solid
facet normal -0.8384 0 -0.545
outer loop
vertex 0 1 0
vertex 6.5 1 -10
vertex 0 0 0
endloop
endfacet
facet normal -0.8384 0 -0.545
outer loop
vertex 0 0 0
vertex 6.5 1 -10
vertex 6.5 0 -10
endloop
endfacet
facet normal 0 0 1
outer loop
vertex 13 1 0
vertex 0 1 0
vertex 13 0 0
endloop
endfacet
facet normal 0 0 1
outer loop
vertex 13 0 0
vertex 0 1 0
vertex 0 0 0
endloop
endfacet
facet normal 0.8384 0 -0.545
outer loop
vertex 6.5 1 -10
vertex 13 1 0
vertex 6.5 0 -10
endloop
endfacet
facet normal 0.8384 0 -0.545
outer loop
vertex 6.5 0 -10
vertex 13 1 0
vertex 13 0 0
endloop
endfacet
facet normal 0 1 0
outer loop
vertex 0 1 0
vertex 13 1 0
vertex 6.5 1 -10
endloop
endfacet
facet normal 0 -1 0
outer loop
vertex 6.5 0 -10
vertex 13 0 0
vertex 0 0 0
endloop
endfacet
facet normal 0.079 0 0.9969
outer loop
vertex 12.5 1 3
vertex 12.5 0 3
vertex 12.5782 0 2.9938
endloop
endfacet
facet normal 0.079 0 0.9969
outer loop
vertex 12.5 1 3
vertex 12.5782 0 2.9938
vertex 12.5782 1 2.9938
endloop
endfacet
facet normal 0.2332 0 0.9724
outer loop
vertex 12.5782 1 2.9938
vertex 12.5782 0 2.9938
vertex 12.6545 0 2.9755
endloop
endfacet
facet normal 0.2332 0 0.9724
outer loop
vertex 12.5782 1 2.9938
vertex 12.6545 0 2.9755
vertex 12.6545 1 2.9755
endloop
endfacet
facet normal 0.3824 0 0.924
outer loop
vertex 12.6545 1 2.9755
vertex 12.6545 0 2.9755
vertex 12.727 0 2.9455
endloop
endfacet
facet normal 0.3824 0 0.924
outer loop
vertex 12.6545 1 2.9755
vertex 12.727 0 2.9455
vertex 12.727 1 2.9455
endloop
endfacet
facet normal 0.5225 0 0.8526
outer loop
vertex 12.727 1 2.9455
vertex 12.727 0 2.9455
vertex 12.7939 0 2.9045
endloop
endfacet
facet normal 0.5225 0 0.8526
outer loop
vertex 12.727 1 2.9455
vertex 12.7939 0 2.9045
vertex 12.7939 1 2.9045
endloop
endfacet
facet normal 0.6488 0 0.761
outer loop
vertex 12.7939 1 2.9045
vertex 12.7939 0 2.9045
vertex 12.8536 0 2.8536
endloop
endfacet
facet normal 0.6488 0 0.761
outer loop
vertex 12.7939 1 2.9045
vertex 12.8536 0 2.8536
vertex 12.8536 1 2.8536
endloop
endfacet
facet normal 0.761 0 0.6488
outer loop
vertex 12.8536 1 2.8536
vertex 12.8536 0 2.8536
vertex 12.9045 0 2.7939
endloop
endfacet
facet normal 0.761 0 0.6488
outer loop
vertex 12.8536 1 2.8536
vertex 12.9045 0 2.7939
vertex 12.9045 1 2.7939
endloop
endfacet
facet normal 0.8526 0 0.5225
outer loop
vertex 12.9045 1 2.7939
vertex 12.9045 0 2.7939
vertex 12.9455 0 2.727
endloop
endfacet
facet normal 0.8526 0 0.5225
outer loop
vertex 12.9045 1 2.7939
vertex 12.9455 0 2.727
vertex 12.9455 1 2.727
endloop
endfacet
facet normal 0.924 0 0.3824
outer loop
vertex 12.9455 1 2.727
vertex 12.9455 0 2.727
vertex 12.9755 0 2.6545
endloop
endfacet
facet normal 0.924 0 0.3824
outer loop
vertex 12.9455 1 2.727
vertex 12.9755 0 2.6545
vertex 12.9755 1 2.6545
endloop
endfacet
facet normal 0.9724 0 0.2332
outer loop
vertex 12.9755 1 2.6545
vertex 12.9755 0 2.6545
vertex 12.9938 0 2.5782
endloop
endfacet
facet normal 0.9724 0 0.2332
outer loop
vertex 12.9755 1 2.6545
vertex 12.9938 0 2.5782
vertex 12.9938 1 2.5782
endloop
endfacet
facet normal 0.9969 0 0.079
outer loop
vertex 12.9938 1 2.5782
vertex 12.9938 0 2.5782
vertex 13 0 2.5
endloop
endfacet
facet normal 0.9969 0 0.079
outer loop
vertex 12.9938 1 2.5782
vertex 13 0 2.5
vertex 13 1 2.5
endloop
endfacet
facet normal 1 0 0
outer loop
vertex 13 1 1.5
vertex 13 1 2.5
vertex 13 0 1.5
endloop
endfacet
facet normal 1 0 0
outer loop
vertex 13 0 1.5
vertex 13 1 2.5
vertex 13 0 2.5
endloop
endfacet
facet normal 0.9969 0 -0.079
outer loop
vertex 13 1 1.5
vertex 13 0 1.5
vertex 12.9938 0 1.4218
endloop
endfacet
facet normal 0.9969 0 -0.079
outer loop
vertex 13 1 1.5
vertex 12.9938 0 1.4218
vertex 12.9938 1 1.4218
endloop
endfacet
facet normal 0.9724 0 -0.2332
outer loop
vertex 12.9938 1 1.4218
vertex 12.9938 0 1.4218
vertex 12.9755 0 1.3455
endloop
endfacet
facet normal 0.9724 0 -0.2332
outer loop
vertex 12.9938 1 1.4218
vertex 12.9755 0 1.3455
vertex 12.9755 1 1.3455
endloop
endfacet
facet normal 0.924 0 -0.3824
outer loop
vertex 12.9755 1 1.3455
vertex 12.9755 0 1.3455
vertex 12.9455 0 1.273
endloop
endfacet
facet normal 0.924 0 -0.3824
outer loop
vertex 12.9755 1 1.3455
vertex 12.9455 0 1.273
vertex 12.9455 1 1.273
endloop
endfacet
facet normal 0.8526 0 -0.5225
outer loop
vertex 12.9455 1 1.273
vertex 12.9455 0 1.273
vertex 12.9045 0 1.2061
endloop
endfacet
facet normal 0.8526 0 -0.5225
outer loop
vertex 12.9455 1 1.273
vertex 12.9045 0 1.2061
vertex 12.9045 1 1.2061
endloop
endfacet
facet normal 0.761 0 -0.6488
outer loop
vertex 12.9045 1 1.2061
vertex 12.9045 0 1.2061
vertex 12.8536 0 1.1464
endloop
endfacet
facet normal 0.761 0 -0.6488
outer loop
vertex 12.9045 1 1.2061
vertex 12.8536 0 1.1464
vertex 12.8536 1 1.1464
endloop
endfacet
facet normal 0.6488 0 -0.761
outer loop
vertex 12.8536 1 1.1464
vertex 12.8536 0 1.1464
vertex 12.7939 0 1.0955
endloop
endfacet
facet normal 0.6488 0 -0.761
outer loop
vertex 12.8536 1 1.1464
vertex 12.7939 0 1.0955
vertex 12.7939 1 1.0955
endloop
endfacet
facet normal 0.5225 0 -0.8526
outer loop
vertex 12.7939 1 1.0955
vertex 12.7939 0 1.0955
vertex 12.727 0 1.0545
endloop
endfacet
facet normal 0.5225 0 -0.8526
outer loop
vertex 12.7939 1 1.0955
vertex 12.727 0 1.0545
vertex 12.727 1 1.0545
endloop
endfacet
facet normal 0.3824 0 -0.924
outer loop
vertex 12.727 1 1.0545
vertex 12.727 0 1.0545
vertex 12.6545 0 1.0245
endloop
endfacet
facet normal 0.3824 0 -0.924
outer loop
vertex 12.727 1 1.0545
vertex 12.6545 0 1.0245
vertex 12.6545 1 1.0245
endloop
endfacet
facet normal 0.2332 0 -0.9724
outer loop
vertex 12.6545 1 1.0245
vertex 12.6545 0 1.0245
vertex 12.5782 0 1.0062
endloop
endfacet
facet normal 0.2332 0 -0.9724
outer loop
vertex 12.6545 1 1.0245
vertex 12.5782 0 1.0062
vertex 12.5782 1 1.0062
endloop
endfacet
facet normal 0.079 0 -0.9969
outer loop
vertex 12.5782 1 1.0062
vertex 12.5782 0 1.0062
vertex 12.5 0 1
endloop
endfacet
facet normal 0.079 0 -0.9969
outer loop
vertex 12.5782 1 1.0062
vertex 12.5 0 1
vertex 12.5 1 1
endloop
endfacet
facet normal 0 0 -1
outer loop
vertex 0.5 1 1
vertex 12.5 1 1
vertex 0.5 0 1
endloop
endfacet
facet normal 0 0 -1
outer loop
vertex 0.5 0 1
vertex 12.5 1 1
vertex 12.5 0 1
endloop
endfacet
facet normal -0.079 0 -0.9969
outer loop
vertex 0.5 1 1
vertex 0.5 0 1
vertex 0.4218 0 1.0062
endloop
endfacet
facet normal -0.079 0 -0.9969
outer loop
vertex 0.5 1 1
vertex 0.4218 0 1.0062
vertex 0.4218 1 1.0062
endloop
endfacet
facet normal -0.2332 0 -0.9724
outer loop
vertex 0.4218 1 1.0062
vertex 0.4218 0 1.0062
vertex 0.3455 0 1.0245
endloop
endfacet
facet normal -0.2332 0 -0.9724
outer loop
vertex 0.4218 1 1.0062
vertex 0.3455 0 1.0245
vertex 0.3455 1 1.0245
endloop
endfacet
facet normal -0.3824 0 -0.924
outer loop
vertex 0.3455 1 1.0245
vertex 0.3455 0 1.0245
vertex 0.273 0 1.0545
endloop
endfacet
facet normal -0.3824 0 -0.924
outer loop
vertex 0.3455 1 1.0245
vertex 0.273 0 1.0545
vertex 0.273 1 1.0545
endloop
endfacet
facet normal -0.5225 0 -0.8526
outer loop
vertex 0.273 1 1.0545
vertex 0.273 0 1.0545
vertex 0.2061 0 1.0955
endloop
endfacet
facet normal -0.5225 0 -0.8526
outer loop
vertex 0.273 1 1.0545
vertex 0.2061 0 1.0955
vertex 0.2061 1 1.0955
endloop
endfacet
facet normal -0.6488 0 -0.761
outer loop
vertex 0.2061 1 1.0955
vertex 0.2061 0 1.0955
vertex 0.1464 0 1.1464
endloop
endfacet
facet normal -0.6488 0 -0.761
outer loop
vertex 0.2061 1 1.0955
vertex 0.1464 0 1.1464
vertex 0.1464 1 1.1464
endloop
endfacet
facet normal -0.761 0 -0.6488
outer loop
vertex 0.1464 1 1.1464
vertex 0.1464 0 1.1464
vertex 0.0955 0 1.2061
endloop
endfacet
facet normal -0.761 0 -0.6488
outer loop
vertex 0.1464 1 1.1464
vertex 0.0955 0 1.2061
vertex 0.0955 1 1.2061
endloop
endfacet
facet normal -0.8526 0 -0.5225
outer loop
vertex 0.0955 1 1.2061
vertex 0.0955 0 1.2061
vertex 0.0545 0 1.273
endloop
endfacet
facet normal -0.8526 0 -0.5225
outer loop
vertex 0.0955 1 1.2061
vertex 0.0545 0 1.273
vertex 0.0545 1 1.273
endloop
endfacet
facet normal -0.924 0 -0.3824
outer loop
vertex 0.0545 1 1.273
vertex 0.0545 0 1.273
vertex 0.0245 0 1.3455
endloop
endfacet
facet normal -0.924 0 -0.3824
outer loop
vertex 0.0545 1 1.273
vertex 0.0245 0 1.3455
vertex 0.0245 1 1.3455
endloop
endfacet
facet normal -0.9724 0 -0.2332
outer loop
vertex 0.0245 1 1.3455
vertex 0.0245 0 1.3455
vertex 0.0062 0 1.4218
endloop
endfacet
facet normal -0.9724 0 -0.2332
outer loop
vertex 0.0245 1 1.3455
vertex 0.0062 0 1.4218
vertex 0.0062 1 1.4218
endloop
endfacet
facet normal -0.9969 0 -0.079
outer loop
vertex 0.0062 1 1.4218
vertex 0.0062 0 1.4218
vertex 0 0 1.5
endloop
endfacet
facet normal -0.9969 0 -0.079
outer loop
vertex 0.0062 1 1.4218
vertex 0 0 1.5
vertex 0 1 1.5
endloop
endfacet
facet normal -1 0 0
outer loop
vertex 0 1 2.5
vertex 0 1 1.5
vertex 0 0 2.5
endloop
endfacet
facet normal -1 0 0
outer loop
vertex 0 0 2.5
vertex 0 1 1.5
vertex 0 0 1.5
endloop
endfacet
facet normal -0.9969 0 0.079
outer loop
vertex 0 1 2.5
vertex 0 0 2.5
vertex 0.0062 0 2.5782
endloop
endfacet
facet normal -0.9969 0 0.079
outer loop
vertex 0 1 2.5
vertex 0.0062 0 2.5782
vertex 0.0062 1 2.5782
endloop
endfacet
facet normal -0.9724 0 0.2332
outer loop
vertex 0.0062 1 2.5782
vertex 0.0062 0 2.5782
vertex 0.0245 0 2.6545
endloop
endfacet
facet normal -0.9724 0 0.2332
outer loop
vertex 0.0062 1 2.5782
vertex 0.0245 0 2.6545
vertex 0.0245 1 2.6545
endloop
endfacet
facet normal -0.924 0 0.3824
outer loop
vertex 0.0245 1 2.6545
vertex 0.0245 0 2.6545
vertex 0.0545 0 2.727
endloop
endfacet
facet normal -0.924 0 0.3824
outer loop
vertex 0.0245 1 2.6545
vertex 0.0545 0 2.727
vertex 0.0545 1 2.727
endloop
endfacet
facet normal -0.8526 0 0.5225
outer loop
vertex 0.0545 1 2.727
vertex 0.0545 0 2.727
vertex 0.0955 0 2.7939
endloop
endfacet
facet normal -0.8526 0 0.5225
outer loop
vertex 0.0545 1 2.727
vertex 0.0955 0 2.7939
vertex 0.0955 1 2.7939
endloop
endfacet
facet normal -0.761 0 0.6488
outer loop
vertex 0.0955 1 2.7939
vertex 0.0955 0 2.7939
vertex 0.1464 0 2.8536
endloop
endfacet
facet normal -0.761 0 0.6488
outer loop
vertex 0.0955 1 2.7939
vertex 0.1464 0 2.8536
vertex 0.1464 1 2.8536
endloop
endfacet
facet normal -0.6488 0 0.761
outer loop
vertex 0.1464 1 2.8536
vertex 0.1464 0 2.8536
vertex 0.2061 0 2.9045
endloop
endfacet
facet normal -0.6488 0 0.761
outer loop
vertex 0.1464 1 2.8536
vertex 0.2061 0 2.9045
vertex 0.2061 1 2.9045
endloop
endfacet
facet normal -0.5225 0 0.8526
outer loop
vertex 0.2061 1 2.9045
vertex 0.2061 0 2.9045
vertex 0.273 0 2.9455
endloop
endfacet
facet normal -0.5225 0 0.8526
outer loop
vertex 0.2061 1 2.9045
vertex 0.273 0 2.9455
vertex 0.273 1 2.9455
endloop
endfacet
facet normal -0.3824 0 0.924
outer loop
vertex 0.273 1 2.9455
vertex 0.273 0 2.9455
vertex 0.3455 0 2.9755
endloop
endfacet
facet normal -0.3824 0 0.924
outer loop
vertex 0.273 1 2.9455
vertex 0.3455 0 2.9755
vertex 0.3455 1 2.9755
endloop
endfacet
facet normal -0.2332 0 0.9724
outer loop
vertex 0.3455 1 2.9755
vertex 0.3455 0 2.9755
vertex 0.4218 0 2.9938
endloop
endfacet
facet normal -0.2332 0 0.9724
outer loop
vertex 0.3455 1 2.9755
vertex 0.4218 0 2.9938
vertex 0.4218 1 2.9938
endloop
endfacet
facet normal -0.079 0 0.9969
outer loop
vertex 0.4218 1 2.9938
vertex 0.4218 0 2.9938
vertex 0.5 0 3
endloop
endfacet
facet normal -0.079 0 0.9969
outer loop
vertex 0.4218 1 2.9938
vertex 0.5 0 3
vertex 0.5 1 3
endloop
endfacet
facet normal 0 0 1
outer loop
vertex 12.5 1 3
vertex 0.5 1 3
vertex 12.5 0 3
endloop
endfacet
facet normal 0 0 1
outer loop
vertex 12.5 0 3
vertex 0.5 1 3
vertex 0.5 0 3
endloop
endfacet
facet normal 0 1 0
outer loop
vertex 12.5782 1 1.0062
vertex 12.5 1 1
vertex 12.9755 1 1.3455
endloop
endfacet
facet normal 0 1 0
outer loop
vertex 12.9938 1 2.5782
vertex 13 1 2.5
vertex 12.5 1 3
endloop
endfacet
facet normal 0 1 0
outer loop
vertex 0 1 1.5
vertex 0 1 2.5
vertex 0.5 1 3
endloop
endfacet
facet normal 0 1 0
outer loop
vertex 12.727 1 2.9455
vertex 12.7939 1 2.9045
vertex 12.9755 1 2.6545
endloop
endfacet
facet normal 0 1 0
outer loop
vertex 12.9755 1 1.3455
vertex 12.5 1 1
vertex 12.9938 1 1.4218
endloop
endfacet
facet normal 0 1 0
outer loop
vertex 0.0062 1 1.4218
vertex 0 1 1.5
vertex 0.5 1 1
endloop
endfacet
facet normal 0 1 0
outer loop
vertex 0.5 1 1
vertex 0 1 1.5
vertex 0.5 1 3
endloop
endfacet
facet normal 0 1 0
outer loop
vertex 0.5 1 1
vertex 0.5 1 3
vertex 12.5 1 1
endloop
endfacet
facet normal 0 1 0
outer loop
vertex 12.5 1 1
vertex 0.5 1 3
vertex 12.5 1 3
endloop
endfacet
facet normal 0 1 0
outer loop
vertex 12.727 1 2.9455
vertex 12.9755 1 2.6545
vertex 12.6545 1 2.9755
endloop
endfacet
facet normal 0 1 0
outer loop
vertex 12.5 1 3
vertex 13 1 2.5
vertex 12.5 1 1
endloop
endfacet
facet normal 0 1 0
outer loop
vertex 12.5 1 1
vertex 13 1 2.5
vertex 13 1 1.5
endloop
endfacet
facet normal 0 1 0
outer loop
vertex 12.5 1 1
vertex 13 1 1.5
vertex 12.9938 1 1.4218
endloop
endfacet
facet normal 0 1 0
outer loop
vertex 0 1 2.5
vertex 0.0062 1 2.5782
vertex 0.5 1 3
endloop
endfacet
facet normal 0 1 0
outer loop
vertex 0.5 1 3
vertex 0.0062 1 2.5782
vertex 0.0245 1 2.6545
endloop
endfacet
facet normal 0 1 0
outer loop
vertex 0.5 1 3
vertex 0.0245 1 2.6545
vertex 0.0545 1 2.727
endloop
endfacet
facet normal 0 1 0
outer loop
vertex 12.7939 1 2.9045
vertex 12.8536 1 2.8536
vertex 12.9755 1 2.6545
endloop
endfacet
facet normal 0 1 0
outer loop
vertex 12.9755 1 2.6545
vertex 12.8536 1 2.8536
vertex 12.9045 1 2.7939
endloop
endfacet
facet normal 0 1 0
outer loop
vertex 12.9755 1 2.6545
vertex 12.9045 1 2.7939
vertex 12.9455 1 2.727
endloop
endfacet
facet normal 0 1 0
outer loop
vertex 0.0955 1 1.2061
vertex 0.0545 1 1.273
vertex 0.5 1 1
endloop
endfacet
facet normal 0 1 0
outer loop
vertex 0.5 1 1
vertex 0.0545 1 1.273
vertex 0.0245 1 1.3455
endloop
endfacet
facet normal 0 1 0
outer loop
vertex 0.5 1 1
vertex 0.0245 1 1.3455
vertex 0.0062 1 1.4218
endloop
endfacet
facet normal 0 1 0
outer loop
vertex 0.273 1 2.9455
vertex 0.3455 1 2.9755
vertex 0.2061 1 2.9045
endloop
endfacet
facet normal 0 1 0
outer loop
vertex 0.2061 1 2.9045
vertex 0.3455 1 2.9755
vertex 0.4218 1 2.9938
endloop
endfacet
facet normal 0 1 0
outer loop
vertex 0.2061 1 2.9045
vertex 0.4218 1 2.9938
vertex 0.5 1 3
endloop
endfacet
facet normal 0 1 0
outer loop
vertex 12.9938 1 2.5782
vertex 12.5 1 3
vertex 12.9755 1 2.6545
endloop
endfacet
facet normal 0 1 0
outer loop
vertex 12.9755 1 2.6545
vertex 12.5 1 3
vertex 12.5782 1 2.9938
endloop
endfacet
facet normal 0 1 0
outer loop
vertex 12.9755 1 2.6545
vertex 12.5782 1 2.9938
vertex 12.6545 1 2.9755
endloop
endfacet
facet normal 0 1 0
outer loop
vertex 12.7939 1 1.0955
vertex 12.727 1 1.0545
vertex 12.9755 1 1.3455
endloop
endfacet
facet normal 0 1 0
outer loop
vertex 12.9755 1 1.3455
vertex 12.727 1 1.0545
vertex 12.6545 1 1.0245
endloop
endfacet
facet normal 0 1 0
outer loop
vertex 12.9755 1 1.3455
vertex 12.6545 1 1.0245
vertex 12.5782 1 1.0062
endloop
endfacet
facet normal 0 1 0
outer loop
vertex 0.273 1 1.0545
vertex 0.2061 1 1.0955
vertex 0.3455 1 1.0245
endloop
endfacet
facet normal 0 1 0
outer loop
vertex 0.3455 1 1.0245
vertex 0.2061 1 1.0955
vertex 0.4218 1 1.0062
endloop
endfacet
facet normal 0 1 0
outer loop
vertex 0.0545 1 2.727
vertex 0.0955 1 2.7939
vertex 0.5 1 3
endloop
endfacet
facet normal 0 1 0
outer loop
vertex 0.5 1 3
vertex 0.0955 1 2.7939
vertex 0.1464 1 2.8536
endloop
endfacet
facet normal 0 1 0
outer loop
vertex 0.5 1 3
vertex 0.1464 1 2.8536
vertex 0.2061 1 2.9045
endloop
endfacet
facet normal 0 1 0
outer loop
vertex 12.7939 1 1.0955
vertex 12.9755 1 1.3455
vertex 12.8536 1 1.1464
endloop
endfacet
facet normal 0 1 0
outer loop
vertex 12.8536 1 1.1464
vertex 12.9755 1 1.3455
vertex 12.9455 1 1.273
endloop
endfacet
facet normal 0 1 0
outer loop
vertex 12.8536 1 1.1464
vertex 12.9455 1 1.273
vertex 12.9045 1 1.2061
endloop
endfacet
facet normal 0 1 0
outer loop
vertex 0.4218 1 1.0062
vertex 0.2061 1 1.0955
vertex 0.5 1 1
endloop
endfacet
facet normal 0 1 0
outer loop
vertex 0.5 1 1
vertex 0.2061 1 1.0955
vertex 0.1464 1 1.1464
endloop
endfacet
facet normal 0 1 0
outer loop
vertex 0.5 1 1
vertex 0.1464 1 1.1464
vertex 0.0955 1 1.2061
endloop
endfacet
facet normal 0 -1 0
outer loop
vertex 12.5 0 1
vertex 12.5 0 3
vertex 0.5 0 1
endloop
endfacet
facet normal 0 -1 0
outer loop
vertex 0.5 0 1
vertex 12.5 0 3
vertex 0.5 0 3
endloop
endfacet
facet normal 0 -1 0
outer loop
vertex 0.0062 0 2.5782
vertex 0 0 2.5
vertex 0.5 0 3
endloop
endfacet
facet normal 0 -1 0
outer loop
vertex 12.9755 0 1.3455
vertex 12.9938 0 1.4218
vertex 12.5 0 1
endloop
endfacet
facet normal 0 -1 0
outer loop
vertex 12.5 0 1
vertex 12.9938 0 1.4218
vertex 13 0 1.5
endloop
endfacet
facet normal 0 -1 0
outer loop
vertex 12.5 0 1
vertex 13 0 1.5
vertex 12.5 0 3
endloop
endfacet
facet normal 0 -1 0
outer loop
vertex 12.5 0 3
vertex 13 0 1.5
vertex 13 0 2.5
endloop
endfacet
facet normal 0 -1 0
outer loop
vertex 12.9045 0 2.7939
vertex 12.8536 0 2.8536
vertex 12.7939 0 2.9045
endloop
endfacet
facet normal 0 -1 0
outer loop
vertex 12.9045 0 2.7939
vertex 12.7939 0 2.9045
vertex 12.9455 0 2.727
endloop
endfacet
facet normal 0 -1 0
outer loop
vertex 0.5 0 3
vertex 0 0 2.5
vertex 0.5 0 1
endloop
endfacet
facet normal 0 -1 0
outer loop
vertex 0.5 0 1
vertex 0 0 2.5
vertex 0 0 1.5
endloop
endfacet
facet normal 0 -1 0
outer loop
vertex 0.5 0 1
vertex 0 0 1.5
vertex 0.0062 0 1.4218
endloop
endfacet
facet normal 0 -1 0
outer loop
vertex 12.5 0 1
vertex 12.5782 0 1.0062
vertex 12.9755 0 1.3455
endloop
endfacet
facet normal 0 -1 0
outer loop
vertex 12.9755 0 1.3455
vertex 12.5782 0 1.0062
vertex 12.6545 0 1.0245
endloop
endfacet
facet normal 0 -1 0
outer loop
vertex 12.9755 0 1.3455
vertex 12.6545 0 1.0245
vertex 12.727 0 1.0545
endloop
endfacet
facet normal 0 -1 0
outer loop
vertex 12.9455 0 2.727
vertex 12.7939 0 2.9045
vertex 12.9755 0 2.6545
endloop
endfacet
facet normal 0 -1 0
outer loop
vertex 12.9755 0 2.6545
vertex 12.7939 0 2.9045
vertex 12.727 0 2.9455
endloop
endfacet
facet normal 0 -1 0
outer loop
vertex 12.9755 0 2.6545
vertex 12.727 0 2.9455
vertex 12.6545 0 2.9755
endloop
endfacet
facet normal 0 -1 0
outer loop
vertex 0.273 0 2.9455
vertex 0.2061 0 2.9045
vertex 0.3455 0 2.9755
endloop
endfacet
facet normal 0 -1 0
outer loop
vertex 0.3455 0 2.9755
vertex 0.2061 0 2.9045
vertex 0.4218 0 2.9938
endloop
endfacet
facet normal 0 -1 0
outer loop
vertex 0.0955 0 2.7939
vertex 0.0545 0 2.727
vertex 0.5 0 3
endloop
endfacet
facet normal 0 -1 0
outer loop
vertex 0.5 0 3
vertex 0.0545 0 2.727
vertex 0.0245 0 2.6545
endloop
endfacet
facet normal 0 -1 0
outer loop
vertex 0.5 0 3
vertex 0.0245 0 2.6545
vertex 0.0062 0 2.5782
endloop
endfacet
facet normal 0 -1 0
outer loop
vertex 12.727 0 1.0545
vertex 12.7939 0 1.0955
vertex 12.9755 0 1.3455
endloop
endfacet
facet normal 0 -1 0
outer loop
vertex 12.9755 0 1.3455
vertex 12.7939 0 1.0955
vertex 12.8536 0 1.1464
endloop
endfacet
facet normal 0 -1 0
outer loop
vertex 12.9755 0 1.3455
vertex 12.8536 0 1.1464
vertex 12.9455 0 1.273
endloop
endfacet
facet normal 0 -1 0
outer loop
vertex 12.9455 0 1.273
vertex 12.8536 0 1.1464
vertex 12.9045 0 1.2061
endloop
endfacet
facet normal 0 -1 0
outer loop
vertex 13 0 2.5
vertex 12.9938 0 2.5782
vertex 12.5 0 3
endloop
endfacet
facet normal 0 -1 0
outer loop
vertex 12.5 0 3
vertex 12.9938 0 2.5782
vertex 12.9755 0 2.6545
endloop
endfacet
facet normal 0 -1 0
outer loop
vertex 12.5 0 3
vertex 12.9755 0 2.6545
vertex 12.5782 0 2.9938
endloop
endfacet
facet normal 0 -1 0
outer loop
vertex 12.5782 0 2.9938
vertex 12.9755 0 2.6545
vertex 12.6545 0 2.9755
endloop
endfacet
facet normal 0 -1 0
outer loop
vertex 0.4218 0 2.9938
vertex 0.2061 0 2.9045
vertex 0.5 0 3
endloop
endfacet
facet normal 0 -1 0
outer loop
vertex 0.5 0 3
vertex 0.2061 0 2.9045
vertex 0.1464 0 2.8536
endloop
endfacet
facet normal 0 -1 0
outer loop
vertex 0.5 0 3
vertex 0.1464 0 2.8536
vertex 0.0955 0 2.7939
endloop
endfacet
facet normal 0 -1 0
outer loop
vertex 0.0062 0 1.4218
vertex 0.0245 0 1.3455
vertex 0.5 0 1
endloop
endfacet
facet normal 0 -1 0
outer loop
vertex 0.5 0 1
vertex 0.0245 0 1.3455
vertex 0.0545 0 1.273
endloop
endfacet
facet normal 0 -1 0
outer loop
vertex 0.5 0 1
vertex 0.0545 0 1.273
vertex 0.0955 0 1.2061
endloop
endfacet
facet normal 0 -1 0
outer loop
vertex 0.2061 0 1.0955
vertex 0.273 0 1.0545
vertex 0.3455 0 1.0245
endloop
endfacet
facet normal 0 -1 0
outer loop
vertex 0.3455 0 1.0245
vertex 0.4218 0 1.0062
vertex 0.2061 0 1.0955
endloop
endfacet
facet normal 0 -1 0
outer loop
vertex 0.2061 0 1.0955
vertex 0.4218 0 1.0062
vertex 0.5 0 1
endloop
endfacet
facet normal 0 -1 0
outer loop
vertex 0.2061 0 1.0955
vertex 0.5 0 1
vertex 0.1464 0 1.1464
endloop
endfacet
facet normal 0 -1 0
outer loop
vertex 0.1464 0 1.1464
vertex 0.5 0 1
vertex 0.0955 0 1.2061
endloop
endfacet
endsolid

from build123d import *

# Parameters (mm, degrees)
BOSS_EXTRUDE1_DEPTH   = 1
BOSS_EXTRUDE1_2_DEPTH = 1


with BuildPart() as part:
    # Sketch2 → Boss-Extrude1 (new body)
    with BuildSketch(Plane(origin=(0, 0, 0), x_dir=(1, 0, 0), z_dir=(0, 1, 0))):
        Polygon((0, 0), (13, 0), (6.5, 10), align=None)
    extrude(amount=BOSS_EXTRUDE1_DEPTH)


with BuildPart() as body_2:
    # Sketch2 → Boss-Extrude1 2 (new body)
    with BuildSketch(Plane(origin=(0, 0, 0), x_dir=(1, 0, 0), z_dir=(0, 1, 0))):
        with BuildLine():
            Line((0.5, -1), (12.5, -1))
            ThreePointArc((12.5, -1), (12.853553391, -1.146446609), (13, -1.5))
            Line((13, -1.5), (13, -2.5))
            ThreePointArc((13, -2.5), (12.853553391, -2.853553391), (12.5, -3))
            Line((12.5, -3), (0.5, -3))
            ThreePointArc((0.5, -3), (0.146446609, -2.853553391), (0, -2.5))
            Line((0, -2.5), (0, -1.5))
            ThreePointArc((0, -1.5), (0.146446609, -1.146446609), (0.5, -1))
        make_face()
    extrude(amount=BOSS_EXTRUDE1_2_DEPTH)


solid = Compound([part.part, body_2.part])
